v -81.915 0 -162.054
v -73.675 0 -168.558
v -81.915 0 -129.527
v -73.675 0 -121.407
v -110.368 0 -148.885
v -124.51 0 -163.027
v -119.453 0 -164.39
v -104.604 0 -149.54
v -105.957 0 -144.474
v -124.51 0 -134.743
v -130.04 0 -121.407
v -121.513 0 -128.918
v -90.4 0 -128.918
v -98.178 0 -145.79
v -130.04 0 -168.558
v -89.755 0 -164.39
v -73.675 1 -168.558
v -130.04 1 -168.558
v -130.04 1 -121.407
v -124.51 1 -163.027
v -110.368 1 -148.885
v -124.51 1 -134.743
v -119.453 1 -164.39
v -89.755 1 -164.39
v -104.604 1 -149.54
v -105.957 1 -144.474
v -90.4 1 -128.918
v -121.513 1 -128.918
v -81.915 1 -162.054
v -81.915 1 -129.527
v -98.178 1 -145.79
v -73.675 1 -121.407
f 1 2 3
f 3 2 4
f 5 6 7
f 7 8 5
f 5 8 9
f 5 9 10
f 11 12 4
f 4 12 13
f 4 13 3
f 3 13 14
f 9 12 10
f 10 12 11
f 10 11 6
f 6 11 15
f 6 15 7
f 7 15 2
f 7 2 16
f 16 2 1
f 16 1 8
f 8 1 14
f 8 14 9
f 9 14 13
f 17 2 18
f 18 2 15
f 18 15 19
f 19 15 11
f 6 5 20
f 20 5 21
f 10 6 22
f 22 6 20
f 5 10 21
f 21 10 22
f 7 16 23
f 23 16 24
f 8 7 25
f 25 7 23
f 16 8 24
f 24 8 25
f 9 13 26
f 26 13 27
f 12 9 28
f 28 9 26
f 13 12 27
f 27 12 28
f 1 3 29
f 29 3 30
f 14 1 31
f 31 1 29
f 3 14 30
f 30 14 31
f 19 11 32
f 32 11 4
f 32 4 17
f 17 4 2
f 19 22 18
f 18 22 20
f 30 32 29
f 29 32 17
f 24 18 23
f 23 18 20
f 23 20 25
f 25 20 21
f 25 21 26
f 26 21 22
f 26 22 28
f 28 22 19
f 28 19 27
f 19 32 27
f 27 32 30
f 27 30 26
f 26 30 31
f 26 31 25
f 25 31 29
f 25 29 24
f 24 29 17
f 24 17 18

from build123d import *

# Parameters (mm, degrees)
SKETCH_1_W          = 100
SKETCH_1_H          = 100
EXTRUDE_1_DEPTH     = 10
CUT_EXTRUDE_1_DEPTH = 10
SKETCH_3_W          = 56.365102816
SKETCH_3_H          = 47.150770251
CUT_EXTRUDE_2_DEPTH = 9


with BuildPart() as part:
    # 草图1 → 凸台-拉伸1 (new body)
    with BuildSketch(Plane(origin=(0, 0, 0), x_dir=(1, 0, 0), z_dir=(0, 1, 0))):
        with Locations((-80.040161423, 118.55773228)):
            Rectangle(SKETCH_1_W, SKETCH_1_H)
        Polygon((-124.50987816, 163.027449017), (-124.50987816, 134.743177769), (-110.367742536, 148.885313393), align=None, mode=Mode.SUBTRACT)
        Polygon((-119.453493398, 164.389725441), (-104.604250993, 149.540483036), (-89.755008588, 164.389725441), align=None, mode=Mode.SUBTRACT)
        Polygon((-105.956547691, 144.474118548), (-121.512896877, 128.917769362), (-90.400198505, 128.917769362), align=None, mode=Mode.SUBTRACT)
        Polygon((-81.914917131, 162.05369475), (-98.178373098, 145.790238783), (-81.914917131, 129.526782816), align=None, mode=Mode.SUBTRACT)
    extrude(amount=EXTRUDE_1_DEPTH)

    # 草图2 → 切除-拉伸1 (cut)
    with BuildSketch(Plane(origin=(0, 10, 0), x_dir=(1, 0, 0), z_dir=(0, 1, 0))):
        Polygon((-130.040161423, 121.406962029), (-73.675058607, 121.406962029), (-73.675058607, 168.55773228), (-30.040161423, 168.55773228), (-30.040161423, 68.55773228), (-130.040161423, 68.55773228), align=None)
    extrude(amount=-CUT_EXTRUDE_1_DEPTH, mode=Mode.SUBTRACT)

    # 草图3 → 切除-拉伸2 (cut)
    with BuildSketch(Plane(origin=(0, 10, 0), x_dir=(1, 0, 0), z_dir=(0, 1, 0))):
        with Locations((-101.857610015, 144.982347155)):
            Rectangle(SKETCH_3_W, SKETCH_3_H)
    extrude(amount=-CUT_EXTRUDE_2_DEPTH, mode=Mode.SUBTRACT)


solid = part.part
